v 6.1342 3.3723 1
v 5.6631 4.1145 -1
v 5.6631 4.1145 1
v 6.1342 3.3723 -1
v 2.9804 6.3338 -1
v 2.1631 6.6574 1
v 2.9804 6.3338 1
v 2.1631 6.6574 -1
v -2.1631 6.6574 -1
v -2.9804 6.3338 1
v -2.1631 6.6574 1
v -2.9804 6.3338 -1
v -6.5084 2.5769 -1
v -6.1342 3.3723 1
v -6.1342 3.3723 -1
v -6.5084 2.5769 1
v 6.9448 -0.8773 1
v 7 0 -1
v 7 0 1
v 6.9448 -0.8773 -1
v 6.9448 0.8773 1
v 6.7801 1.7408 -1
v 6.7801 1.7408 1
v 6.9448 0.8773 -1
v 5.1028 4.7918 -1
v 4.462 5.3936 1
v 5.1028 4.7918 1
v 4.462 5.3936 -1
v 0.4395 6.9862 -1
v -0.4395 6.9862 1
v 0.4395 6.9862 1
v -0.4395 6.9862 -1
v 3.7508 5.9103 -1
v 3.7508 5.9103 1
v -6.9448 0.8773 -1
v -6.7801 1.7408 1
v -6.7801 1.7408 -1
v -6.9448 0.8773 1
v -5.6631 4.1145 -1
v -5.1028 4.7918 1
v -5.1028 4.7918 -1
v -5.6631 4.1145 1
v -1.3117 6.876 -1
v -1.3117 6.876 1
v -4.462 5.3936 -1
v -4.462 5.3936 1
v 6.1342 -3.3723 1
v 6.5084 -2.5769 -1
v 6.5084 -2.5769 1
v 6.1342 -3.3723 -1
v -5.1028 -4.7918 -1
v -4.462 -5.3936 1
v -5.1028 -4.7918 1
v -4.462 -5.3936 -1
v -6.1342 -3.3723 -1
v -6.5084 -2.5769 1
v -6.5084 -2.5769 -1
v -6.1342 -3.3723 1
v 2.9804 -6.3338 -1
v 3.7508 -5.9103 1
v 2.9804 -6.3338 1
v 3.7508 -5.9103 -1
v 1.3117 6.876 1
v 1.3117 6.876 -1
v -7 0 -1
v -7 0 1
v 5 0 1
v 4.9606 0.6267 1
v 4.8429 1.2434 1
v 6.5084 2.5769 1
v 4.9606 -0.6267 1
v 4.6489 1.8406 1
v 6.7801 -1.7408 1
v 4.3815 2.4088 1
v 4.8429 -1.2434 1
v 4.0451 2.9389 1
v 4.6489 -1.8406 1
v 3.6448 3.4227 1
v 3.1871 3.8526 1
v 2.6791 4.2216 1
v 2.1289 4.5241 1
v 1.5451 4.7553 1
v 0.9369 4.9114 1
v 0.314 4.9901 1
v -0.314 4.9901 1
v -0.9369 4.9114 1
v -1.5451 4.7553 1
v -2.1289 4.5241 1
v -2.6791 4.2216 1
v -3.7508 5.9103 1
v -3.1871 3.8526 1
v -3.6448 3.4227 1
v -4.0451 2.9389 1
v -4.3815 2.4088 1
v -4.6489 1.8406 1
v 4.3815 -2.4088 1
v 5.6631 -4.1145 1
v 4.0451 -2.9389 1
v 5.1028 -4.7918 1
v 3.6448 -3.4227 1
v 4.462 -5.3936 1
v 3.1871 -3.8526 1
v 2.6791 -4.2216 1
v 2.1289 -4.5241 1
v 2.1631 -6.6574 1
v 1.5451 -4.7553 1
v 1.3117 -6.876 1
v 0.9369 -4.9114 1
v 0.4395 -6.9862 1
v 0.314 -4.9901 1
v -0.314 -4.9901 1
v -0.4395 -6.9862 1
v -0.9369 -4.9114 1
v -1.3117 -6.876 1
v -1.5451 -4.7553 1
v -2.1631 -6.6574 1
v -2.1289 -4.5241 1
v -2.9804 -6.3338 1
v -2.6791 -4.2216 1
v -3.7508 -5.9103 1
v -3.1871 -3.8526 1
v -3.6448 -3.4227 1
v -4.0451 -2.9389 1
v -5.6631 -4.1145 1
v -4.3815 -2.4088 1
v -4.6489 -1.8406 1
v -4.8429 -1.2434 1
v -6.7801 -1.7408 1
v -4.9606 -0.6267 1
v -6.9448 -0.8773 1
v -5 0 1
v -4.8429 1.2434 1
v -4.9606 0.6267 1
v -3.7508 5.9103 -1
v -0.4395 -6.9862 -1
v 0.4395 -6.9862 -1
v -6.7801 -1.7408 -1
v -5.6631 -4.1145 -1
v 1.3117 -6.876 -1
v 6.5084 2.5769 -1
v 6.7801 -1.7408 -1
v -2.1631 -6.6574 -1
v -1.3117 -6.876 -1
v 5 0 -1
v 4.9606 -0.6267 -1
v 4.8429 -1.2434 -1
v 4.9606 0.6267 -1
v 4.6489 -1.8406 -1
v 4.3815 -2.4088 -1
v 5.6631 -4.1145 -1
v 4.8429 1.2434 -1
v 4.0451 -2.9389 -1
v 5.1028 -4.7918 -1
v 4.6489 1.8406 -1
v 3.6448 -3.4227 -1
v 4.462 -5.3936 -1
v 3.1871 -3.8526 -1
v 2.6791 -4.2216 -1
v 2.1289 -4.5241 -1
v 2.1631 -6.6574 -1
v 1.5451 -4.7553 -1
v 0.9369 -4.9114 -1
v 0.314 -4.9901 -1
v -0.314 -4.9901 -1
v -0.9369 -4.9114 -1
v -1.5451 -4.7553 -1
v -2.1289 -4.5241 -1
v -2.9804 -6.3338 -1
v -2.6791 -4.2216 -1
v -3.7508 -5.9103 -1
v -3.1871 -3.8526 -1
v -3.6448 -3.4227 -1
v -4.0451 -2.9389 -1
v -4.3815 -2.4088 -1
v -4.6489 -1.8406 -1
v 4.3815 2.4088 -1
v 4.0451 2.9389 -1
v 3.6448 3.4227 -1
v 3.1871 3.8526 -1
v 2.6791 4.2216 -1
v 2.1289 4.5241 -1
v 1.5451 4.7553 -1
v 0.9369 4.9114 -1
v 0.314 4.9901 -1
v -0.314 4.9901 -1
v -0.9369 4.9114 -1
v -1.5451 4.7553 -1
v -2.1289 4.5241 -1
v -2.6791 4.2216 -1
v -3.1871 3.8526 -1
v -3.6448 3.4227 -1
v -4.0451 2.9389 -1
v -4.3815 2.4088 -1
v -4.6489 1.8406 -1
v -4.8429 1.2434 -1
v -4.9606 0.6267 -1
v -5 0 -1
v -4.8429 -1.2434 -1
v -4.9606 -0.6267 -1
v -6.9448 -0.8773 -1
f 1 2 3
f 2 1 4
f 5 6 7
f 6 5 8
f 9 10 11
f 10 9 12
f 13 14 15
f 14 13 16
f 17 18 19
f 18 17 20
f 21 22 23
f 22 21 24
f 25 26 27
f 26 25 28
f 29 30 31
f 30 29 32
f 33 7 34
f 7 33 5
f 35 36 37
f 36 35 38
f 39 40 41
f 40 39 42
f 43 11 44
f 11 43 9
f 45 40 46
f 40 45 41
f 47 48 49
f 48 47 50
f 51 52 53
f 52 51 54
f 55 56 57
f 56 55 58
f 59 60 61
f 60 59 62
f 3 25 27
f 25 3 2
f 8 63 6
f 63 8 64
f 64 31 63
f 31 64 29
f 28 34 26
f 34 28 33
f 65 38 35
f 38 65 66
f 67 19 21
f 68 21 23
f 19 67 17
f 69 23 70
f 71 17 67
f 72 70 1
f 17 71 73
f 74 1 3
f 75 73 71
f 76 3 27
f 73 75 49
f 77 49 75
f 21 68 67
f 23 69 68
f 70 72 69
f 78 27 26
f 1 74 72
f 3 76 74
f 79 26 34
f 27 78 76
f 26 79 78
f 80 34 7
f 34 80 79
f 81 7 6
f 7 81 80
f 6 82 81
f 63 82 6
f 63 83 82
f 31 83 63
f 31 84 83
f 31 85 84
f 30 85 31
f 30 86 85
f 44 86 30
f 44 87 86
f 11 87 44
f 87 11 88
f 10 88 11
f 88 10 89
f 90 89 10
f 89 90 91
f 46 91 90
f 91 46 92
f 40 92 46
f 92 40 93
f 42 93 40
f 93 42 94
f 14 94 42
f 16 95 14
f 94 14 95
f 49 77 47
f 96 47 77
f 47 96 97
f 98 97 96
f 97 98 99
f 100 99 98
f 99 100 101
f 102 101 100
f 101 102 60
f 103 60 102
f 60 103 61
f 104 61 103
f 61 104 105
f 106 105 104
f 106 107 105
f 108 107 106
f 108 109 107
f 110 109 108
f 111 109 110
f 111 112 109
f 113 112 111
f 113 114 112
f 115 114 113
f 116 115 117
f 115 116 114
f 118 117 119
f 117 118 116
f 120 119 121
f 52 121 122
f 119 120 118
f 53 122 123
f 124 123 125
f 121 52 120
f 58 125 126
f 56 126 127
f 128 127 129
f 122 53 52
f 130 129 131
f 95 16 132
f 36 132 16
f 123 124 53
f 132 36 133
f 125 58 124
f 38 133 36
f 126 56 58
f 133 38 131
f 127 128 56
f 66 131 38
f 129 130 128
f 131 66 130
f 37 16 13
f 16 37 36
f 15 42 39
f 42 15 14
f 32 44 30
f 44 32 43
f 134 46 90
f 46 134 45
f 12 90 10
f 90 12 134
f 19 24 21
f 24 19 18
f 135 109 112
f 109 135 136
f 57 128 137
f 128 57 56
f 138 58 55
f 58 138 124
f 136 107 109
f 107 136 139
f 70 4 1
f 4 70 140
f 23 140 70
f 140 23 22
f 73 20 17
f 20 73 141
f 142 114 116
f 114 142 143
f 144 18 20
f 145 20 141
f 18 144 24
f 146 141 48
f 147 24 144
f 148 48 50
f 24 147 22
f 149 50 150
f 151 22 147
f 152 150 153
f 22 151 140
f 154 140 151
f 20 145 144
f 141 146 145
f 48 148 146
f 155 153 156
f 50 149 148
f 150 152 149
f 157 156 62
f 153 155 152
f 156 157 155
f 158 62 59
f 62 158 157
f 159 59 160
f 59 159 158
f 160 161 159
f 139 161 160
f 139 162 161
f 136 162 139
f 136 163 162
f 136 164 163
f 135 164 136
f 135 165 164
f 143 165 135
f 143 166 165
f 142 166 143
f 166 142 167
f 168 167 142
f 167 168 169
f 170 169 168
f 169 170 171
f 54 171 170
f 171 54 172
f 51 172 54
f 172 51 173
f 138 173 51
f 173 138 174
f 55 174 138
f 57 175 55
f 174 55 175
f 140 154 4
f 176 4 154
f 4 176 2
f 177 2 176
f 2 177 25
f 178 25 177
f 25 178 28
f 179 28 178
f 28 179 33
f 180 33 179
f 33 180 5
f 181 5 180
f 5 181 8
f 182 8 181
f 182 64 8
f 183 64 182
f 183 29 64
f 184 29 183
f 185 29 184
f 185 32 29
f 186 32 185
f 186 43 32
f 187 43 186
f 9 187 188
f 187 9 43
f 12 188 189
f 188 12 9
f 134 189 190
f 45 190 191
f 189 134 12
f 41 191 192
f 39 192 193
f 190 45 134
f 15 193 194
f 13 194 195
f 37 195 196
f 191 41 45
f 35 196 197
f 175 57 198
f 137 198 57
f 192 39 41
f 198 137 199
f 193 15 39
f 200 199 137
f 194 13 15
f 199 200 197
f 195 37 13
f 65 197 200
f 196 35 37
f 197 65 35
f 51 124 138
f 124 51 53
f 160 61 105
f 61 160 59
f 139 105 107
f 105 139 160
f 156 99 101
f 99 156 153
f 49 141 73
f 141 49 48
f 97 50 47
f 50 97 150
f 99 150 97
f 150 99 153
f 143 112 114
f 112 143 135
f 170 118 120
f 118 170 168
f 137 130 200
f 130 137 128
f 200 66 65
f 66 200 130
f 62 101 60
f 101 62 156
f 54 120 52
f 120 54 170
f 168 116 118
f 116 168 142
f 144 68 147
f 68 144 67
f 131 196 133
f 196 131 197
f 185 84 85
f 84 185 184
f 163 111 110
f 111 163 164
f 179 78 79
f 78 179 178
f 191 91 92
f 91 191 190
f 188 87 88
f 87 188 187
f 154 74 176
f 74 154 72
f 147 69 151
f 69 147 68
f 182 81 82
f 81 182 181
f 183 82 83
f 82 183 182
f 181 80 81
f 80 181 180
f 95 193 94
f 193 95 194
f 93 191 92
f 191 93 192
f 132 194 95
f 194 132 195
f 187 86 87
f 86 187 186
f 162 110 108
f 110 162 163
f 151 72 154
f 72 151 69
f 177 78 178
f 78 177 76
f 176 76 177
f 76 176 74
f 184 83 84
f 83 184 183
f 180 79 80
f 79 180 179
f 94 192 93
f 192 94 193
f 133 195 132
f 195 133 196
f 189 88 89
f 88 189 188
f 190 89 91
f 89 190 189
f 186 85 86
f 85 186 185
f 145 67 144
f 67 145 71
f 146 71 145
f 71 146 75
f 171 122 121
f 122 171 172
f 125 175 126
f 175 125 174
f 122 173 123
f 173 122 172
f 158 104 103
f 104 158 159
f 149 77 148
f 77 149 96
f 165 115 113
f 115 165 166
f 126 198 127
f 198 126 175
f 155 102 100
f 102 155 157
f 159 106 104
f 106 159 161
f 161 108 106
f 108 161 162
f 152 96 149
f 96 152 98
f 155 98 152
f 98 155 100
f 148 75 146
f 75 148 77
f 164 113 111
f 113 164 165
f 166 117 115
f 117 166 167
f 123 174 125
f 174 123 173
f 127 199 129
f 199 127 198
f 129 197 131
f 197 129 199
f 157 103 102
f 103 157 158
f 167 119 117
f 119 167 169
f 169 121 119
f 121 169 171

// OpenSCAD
$fn = 50;


difference() {
	union() {
		translate(v = [0, 0, -1.0000000000]) {
			cylinder(h = 2, r = 7.0000000000);
		}
	}
	union() {
		translate(v = [0, 0, -100.0000000000]) {
			cylinder(h = 200, r = 5);
		}
	}
}
